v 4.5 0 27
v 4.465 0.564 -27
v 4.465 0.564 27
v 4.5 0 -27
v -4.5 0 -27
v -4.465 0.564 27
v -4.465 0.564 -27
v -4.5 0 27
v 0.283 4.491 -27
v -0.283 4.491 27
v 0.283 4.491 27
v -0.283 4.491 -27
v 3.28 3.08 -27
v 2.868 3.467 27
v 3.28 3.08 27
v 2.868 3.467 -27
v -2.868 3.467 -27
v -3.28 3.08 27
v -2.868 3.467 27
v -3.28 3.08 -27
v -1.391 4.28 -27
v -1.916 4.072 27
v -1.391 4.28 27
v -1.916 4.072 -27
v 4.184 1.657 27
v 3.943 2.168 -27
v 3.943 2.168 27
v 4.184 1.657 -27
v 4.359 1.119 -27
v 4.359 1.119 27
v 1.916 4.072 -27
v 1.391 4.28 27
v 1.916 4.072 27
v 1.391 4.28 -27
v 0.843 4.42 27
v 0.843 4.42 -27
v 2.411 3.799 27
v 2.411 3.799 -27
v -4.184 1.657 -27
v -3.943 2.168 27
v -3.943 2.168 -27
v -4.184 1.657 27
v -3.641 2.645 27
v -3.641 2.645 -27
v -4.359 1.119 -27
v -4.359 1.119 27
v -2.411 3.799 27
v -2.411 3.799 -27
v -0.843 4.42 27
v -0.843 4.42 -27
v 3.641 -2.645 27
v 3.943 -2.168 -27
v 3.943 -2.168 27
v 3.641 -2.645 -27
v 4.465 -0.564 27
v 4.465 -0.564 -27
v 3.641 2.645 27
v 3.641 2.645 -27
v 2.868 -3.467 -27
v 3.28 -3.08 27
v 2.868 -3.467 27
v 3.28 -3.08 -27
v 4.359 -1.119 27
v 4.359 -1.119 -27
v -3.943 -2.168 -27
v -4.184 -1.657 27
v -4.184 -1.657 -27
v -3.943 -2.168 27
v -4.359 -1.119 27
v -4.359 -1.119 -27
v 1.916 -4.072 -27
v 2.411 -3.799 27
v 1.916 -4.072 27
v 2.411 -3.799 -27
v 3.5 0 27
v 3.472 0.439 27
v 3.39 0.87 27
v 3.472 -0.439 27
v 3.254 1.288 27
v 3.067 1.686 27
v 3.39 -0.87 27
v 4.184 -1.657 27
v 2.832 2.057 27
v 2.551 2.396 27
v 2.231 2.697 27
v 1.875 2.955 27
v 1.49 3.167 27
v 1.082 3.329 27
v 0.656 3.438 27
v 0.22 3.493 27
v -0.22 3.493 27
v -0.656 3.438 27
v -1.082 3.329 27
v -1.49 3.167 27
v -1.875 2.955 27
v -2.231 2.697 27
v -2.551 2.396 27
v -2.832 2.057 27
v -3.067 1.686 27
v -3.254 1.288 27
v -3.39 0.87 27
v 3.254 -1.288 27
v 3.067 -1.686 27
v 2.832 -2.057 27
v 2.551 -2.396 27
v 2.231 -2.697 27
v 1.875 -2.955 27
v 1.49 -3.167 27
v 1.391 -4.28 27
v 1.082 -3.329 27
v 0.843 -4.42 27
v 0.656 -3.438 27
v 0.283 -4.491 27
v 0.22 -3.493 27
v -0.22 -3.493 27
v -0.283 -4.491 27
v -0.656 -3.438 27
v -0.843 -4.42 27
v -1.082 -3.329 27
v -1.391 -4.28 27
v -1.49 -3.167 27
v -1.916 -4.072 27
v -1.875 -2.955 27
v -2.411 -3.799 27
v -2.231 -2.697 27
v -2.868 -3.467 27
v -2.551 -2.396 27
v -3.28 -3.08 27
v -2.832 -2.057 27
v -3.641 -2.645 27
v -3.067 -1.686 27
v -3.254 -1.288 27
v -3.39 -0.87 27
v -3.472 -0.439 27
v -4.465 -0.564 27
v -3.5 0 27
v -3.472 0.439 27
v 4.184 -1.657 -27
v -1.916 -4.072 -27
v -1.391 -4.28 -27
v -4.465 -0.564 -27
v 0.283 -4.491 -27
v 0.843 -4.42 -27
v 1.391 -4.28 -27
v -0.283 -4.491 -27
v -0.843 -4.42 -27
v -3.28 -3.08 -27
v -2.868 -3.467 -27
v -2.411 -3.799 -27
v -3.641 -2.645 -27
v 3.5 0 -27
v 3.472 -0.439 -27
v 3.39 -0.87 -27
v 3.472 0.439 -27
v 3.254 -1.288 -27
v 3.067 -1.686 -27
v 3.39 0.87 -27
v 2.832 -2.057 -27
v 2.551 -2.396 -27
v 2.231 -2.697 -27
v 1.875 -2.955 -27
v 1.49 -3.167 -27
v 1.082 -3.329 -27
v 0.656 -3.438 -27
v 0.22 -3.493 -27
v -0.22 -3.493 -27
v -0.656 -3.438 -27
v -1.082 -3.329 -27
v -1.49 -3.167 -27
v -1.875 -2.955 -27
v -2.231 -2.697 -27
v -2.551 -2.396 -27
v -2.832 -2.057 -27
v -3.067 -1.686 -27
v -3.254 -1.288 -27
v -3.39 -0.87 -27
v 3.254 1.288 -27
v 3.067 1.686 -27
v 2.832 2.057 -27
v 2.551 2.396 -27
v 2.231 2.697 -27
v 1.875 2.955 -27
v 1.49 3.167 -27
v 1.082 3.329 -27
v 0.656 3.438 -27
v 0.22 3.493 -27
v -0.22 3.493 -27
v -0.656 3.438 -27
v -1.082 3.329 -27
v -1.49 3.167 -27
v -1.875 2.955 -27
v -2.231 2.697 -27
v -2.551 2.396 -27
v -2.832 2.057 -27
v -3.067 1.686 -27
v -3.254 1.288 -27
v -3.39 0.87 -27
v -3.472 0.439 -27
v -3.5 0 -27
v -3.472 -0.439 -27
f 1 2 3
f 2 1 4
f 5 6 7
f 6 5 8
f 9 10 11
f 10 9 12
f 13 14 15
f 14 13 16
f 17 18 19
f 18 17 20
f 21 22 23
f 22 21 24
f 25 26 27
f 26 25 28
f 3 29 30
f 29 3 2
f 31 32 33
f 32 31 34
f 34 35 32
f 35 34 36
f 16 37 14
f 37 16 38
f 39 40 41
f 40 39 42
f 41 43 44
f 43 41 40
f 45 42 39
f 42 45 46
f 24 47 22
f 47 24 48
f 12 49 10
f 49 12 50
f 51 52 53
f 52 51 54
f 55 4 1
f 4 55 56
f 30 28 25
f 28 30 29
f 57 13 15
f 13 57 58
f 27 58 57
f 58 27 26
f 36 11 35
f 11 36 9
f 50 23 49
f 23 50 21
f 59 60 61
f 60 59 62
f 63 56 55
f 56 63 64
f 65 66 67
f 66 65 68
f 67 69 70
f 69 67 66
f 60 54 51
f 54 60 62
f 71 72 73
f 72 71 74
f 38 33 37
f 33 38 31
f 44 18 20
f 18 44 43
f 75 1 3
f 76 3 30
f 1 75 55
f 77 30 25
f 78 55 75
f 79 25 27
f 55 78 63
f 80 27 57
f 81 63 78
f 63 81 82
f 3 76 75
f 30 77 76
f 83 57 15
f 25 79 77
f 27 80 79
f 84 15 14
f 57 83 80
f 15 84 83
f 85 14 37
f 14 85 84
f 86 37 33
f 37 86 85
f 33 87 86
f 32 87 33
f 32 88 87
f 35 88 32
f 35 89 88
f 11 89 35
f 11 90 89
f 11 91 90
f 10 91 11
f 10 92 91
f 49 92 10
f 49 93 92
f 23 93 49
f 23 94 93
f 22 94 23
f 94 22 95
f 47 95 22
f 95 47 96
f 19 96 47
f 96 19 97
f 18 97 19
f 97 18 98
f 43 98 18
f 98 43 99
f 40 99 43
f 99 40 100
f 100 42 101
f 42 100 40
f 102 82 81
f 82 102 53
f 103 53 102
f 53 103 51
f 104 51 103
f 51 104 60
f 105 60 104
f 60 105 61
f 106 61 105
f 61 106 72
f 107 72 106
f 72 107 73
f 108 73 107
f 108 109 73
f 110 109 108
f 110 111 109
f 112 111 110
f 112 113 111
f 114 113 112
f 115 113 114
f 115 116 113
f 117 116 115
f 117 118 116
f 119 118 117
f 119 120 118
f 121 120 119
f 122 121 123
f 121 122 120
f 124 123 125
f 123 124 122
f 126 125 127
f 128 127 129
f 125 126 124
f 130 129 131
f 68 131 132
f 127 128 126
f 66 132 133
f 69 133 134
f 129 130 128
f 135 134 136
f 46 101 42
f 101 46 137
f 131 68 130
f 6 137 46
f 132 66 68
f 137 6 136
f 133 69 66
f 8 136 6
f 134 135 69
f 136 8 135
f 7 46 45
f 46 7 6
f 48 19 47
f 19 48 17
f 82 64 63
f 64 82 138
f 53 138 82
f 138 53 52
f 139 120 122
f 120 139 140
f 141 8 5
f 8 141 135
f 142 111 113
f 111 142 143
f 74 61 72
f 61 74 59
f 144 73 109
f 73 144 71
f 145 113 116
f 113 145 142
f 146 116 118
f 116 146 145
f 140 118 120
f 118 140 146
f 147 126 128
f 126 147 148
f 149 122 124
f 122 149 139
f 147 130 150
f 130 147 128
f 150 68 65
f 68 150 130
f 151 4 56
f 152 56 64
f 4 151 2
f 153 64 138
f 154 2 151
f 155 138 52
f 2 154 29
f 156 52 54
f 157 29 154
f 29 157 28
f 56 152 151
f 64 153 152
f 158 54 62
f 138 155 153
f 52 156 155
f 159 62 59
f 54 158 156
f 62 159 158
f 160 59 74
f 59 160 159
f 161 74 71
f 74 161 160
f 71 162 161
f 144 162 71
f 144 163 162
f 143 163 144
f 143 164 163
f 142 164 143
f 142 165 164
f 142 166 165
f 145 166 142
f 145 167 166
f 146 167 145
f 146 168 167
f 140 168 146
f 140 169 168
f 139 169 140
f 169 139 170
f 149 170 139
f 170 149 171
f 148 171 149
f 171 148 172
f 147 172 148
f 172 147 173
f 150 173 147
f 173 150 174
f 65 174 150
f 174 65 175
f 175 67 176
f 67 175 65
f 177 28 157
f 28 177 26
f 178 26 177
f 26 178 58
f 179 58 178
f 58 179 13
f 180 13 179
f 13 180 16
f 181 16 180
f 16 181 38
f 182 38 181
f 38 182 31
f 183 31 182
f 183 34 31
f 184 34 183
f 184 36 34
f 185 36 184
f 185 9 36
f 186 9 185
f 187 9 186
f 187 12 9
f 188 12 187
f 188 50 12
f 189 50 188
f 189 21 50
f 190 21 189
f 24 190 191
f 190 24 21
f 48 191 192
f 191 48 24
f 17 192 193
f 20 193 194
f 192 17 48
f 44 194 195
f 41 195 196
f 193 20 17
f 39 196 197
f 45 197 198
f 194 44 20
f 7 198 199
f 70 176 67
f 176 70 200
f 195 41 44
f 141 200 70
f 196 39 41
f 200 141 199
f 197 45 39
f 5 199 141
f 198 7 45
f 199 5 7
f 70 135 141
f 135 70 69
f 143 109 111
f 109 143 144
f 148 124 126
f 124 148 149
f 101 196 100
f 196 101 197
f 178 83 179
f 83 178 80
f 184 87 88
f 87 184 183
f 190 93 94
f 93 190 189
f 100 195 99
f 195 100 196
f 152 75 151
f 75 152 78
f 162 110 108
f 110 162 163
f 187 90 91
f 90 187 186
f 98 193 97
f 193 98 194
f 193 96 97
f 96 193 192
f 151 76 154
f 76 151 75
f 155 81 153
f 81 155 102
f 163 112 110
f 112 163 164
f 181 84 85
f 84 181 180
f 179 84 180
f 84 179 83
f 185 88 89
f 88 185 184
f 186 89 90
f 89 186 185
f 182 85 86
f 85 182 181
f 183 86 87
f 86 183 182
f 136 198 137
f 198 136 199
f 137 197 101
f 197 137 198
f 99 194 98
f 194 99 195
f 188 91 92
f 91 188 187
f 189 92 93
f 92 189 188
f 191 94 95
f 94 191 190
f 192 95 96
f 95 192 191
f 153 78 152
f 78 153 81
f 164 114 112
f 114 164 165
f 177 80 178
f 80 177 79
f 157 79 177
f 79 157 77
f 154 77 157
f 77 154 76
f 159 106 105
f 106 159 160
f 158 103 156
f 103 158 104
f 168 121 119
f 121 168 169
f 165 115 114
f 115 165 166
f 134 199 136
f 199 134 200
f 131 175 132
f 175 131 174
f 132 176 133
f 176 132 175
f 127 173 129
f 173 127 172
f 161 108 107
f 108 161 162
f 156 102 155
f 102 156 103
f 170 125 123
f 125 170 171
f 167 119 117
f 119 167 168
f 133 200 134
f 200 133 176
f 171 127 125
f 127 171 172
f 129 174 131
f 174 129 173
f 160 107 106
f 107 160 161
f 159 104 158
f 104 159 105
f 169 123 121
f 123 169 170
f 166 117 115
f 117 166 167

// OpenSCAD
$fn = 50;


difference() {
	union() {
		translate(v = [0, 0, -27.0000000000]) {
			cylinder(h = 54, r = 4.5000000000);
		}
	}
	union() {
		translate(v = [0, 0, -100.0000000000]) {
			cylinder(h = 200, r = 3.5000000000);
		}
	}
}
